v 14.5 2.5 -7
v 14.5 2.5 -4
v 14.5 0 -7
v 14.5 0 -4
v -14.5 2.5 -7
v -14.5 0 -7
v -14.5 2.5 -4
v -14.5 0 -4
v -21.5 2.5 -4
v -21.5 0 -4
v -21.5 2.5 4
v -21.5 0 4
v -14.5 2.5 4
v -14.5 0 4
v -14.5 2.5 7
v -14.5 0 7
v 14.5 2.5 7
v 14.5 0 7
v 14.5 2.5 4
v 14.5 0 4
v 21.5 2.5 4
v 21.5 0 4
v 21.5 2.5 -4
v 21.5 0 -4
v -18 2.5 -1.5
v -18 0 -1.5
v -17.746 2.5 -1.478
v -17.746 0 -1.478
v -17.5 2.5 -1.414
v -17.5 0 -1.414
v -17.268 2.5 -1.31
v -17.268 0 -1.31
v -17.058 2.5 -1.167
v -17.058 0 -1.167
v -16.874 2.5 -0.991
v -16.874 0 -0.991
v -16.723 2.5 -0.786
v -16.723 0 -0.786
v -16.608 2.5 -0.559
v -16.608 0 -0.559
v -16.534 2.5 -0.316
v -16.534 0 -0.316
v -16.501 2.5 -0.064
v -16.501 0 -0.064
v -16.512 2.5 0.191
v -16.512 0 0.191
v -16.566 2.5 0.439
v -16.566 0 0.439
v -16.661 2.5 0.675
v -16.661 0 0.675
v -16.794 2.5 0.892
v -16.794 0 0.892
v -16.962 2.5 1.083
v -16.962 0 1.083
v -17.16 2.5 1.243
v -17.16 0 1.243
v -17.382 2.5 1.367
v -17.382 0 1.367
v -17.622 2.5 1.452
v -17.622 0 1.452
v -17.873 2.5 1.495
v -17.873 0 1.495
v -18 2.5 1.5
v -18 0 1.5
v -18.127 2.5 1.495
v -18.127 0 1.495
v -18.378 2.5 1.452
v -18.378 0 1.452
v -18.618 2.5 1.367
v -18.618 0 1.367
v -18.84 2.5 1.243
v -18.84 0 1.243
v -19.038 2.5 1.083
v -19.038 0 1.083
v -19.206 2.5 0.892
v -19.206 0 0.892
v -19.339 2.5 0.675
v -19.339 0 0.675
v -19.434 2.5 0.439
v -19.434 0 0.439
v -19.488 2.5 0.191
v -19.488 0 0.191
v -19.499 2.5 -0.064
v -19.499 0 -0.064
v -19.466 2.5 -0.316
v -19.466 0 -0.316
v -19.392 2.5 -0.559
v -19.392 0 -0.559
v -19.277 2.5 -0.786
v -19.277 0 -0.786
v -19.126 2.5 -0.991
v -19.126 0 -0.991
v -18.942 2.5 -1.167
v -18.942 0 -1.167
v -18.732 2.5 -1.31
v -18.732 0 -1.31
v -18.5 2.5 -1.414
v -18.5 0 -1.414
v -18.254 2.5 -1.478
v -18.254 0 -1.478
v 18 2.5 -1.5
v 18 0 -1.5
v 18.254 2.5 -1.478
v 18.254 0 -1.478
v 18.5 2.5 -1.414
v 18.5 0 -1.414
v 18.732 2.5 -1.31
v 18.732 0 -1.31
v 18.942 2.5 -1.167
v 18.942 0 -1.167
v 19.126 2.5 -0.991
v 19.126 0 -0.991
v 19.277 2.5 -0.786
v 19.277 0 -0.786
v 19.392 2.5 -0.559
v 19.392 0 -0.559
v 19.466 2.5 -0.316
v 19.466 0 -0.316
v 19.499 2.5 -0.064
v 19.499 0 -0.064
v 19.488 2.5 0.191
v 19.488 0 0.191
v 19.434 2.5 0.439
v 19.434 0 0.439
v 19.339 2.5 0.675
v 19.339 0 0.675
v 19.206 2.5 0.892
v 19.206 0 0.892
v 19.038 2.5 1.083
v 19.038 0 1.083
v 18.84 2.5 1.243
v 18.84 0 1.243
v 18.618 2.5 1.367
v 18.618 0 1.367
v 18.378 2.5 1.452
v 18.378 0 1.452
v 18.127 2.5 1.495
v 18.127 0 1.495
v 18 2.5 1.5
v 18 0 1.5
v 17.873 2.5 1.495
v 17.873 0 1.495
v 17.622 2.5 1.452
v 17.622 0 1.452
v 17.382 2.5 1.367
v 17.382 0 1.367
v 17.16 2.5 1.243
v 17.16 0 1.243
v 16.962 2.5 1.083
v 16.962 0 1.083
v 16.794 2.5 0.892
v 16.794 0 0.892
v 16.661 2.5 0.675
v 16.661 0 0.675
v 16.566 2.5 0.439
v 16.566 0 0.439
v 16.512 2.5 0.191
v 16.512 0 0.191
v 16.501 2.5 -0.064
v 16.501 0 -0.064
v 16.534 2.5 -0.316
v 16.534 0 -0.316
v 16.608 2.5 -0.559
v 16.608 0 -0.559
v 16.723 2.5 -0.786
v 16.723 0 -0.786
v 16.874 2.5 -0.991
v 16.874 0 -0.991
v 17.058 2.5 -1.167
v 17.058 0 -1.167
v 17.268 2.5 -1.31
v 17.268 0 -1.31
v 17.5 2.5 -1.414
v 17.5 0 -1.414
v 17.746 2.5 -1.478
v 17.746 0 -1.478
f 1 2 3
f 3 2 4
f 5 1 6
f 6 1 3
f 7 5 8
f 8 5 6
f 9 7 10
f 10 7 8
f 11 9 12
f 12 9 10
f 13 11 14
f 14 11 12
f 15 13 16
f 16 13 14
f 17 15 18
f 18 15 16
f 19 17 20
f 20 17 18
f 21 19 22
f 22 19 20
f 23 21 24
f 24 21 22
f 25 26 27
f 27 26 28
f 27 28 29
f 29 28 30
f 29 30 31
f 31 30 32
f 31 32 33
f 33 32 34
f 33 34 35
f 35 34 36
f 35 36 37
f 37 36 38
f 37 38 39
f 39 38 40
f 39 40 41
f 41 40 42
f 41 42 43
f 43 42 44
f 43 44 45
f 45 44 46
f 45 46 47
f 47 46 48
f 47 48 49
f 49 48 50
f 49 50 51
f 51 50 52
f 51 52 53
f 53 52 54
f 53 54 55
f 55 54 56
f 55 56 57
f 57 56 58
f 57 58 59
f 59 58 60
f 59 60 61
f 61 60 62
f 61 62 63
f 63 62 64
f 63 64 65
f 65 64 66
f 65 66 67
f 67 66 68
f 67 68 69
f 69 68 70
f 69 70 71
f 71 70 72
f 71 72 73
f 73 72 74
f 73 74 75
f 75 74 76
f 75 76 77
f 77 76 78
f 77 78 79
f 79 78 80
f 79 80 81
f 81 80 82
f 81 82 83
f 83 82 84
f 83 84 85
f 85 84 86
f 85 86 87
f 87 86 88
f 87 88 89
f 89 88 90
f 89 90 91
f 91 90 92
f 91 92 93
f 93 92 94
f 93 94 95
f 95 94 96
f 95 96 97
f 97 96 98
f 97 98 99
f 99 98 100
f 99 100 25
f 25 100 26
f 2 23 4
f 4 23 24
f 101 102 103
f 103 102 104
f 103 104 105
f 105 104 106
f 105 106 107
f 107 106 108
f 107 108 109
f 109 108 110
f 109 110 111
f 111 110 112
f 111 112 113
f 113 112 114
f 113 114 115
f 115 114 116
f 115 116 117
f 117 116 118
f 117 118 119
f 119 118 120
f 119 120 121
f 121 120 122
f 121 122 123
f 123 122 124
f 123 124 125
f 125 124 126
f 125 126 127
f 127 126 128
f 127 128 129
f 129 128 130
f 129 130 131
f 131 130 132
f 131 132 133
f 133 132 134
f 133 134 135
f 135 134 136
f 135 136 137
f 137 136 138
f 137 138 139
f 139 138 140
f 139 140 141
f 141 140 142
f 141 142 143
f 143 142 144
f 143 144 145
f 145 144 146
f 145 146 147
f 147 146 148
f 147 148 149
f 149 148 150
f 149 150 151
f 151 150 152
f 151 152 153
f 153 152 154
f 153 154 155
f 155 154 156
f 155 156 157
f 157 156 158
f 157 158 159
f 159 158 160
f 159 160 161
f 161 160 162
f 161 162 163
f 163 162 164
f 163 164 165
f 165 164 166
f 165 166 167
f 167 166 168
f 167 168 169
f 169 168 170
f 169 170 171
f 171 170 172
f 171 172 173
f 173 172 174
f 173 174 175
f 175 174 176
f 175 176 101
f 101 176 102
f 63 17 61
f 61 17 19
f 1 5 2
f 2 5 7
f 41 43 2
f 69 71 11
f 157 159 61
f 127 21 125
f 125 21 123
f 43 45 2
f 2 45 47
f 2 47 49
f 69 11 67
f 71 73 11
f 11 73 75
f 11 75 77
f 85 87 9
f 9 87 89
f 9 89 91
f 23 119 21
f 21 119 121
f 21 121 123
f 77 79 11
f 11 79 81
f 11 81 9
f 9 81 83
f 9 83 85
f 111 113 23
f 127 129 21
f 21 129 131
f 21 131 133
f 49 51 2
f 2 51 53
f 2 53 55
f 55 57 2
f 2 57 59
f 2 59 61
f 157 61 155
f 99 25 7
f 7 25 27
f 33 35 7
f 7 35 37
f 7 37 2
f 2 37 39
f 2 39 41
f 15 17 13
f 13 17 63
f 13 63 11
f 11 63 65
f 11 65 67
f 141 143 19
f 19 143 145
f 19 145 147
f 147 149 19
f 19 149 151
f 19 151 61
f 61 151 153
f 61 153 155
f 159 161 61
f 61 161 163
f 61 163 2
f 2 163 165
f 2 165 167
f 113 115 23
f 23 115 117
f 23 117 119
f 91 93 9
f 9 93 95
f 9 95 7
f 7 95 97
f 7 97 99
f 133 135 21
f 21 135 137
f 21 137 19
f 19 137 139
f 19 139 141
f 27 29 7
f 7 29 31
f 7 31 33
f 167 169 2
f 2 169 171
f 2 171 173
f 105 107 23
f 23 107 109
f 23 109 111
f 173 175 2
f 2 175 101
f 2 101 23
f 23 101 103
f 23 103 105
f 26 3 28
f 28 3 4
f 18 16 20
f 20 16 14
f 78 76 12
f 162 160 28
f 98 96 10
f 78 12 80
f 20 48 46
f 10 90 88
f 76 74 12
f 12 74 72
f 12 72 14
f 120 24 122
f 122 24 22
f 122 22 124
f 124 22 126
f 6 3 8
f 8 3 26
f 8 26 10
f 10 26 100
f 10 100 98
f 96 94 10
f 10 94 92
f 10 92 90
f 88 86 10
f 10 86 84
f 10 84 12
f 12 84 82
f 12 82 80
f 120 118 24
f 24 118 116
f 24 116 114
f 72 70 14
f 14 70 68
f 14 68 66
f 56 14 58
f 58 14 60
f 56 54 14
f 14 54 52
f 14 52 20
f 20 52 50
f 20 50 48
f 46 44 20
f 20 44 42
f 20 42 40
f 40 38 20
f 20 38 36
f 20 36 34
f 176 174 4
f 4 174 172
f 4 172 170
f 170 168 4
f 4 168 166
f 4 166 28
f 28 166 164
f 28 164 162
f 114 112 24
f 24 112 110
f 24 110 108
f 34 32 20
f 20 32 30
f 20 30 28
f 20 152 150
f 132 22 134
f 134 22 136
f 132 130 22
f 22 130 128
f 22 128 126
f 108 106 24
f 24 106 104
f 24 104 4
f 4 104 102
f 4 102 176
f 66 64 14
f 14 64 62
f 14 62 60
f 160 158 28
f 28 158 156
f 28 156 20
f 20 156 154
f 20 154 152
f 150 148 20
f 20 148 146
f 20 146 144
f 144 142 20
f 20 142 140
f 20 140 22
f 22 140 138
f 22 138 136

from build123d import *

# Parameters (mm, degrees)
SKETCH1_W           = 29
SKETCH1_H           = 14
SKETCH1_W_2         = 7
SKETCH1_H_2         = 8
SKETCH1_R           = 1.5
BOSS_EXTRUDE1_DEPTH = 2.5


with BuildPart() as part:
    # Sketch1 → Boss-Extrude1 (new body)
    with BuildSketch(Plane(origin=(0, 0, 0), x_dir=(1, 0, 0), z_dir=(0, 1, 0))):
        Rectangle(SKETCH1_W, SKETCH1_H)
        with Locations((-18, 0)):
            Rectangle(SKETCH1_W_2, SKETCH1_H_2)
        with Locations((-18, 0)):
            Circle(SKETCH1_R, mode=Mode.SUBTRACT)
        with Locations((18, 0)):
            Rectangle(SKETCH1_W_2, SKETCH1_H_2)
        with Locations((18, 0)):
            Circle(SKETCH1_R, mode=Mode.SUBTRACT)
    extrude(amount=BOSS_EXTRUDE1_DEPTH)


solid = part.part
